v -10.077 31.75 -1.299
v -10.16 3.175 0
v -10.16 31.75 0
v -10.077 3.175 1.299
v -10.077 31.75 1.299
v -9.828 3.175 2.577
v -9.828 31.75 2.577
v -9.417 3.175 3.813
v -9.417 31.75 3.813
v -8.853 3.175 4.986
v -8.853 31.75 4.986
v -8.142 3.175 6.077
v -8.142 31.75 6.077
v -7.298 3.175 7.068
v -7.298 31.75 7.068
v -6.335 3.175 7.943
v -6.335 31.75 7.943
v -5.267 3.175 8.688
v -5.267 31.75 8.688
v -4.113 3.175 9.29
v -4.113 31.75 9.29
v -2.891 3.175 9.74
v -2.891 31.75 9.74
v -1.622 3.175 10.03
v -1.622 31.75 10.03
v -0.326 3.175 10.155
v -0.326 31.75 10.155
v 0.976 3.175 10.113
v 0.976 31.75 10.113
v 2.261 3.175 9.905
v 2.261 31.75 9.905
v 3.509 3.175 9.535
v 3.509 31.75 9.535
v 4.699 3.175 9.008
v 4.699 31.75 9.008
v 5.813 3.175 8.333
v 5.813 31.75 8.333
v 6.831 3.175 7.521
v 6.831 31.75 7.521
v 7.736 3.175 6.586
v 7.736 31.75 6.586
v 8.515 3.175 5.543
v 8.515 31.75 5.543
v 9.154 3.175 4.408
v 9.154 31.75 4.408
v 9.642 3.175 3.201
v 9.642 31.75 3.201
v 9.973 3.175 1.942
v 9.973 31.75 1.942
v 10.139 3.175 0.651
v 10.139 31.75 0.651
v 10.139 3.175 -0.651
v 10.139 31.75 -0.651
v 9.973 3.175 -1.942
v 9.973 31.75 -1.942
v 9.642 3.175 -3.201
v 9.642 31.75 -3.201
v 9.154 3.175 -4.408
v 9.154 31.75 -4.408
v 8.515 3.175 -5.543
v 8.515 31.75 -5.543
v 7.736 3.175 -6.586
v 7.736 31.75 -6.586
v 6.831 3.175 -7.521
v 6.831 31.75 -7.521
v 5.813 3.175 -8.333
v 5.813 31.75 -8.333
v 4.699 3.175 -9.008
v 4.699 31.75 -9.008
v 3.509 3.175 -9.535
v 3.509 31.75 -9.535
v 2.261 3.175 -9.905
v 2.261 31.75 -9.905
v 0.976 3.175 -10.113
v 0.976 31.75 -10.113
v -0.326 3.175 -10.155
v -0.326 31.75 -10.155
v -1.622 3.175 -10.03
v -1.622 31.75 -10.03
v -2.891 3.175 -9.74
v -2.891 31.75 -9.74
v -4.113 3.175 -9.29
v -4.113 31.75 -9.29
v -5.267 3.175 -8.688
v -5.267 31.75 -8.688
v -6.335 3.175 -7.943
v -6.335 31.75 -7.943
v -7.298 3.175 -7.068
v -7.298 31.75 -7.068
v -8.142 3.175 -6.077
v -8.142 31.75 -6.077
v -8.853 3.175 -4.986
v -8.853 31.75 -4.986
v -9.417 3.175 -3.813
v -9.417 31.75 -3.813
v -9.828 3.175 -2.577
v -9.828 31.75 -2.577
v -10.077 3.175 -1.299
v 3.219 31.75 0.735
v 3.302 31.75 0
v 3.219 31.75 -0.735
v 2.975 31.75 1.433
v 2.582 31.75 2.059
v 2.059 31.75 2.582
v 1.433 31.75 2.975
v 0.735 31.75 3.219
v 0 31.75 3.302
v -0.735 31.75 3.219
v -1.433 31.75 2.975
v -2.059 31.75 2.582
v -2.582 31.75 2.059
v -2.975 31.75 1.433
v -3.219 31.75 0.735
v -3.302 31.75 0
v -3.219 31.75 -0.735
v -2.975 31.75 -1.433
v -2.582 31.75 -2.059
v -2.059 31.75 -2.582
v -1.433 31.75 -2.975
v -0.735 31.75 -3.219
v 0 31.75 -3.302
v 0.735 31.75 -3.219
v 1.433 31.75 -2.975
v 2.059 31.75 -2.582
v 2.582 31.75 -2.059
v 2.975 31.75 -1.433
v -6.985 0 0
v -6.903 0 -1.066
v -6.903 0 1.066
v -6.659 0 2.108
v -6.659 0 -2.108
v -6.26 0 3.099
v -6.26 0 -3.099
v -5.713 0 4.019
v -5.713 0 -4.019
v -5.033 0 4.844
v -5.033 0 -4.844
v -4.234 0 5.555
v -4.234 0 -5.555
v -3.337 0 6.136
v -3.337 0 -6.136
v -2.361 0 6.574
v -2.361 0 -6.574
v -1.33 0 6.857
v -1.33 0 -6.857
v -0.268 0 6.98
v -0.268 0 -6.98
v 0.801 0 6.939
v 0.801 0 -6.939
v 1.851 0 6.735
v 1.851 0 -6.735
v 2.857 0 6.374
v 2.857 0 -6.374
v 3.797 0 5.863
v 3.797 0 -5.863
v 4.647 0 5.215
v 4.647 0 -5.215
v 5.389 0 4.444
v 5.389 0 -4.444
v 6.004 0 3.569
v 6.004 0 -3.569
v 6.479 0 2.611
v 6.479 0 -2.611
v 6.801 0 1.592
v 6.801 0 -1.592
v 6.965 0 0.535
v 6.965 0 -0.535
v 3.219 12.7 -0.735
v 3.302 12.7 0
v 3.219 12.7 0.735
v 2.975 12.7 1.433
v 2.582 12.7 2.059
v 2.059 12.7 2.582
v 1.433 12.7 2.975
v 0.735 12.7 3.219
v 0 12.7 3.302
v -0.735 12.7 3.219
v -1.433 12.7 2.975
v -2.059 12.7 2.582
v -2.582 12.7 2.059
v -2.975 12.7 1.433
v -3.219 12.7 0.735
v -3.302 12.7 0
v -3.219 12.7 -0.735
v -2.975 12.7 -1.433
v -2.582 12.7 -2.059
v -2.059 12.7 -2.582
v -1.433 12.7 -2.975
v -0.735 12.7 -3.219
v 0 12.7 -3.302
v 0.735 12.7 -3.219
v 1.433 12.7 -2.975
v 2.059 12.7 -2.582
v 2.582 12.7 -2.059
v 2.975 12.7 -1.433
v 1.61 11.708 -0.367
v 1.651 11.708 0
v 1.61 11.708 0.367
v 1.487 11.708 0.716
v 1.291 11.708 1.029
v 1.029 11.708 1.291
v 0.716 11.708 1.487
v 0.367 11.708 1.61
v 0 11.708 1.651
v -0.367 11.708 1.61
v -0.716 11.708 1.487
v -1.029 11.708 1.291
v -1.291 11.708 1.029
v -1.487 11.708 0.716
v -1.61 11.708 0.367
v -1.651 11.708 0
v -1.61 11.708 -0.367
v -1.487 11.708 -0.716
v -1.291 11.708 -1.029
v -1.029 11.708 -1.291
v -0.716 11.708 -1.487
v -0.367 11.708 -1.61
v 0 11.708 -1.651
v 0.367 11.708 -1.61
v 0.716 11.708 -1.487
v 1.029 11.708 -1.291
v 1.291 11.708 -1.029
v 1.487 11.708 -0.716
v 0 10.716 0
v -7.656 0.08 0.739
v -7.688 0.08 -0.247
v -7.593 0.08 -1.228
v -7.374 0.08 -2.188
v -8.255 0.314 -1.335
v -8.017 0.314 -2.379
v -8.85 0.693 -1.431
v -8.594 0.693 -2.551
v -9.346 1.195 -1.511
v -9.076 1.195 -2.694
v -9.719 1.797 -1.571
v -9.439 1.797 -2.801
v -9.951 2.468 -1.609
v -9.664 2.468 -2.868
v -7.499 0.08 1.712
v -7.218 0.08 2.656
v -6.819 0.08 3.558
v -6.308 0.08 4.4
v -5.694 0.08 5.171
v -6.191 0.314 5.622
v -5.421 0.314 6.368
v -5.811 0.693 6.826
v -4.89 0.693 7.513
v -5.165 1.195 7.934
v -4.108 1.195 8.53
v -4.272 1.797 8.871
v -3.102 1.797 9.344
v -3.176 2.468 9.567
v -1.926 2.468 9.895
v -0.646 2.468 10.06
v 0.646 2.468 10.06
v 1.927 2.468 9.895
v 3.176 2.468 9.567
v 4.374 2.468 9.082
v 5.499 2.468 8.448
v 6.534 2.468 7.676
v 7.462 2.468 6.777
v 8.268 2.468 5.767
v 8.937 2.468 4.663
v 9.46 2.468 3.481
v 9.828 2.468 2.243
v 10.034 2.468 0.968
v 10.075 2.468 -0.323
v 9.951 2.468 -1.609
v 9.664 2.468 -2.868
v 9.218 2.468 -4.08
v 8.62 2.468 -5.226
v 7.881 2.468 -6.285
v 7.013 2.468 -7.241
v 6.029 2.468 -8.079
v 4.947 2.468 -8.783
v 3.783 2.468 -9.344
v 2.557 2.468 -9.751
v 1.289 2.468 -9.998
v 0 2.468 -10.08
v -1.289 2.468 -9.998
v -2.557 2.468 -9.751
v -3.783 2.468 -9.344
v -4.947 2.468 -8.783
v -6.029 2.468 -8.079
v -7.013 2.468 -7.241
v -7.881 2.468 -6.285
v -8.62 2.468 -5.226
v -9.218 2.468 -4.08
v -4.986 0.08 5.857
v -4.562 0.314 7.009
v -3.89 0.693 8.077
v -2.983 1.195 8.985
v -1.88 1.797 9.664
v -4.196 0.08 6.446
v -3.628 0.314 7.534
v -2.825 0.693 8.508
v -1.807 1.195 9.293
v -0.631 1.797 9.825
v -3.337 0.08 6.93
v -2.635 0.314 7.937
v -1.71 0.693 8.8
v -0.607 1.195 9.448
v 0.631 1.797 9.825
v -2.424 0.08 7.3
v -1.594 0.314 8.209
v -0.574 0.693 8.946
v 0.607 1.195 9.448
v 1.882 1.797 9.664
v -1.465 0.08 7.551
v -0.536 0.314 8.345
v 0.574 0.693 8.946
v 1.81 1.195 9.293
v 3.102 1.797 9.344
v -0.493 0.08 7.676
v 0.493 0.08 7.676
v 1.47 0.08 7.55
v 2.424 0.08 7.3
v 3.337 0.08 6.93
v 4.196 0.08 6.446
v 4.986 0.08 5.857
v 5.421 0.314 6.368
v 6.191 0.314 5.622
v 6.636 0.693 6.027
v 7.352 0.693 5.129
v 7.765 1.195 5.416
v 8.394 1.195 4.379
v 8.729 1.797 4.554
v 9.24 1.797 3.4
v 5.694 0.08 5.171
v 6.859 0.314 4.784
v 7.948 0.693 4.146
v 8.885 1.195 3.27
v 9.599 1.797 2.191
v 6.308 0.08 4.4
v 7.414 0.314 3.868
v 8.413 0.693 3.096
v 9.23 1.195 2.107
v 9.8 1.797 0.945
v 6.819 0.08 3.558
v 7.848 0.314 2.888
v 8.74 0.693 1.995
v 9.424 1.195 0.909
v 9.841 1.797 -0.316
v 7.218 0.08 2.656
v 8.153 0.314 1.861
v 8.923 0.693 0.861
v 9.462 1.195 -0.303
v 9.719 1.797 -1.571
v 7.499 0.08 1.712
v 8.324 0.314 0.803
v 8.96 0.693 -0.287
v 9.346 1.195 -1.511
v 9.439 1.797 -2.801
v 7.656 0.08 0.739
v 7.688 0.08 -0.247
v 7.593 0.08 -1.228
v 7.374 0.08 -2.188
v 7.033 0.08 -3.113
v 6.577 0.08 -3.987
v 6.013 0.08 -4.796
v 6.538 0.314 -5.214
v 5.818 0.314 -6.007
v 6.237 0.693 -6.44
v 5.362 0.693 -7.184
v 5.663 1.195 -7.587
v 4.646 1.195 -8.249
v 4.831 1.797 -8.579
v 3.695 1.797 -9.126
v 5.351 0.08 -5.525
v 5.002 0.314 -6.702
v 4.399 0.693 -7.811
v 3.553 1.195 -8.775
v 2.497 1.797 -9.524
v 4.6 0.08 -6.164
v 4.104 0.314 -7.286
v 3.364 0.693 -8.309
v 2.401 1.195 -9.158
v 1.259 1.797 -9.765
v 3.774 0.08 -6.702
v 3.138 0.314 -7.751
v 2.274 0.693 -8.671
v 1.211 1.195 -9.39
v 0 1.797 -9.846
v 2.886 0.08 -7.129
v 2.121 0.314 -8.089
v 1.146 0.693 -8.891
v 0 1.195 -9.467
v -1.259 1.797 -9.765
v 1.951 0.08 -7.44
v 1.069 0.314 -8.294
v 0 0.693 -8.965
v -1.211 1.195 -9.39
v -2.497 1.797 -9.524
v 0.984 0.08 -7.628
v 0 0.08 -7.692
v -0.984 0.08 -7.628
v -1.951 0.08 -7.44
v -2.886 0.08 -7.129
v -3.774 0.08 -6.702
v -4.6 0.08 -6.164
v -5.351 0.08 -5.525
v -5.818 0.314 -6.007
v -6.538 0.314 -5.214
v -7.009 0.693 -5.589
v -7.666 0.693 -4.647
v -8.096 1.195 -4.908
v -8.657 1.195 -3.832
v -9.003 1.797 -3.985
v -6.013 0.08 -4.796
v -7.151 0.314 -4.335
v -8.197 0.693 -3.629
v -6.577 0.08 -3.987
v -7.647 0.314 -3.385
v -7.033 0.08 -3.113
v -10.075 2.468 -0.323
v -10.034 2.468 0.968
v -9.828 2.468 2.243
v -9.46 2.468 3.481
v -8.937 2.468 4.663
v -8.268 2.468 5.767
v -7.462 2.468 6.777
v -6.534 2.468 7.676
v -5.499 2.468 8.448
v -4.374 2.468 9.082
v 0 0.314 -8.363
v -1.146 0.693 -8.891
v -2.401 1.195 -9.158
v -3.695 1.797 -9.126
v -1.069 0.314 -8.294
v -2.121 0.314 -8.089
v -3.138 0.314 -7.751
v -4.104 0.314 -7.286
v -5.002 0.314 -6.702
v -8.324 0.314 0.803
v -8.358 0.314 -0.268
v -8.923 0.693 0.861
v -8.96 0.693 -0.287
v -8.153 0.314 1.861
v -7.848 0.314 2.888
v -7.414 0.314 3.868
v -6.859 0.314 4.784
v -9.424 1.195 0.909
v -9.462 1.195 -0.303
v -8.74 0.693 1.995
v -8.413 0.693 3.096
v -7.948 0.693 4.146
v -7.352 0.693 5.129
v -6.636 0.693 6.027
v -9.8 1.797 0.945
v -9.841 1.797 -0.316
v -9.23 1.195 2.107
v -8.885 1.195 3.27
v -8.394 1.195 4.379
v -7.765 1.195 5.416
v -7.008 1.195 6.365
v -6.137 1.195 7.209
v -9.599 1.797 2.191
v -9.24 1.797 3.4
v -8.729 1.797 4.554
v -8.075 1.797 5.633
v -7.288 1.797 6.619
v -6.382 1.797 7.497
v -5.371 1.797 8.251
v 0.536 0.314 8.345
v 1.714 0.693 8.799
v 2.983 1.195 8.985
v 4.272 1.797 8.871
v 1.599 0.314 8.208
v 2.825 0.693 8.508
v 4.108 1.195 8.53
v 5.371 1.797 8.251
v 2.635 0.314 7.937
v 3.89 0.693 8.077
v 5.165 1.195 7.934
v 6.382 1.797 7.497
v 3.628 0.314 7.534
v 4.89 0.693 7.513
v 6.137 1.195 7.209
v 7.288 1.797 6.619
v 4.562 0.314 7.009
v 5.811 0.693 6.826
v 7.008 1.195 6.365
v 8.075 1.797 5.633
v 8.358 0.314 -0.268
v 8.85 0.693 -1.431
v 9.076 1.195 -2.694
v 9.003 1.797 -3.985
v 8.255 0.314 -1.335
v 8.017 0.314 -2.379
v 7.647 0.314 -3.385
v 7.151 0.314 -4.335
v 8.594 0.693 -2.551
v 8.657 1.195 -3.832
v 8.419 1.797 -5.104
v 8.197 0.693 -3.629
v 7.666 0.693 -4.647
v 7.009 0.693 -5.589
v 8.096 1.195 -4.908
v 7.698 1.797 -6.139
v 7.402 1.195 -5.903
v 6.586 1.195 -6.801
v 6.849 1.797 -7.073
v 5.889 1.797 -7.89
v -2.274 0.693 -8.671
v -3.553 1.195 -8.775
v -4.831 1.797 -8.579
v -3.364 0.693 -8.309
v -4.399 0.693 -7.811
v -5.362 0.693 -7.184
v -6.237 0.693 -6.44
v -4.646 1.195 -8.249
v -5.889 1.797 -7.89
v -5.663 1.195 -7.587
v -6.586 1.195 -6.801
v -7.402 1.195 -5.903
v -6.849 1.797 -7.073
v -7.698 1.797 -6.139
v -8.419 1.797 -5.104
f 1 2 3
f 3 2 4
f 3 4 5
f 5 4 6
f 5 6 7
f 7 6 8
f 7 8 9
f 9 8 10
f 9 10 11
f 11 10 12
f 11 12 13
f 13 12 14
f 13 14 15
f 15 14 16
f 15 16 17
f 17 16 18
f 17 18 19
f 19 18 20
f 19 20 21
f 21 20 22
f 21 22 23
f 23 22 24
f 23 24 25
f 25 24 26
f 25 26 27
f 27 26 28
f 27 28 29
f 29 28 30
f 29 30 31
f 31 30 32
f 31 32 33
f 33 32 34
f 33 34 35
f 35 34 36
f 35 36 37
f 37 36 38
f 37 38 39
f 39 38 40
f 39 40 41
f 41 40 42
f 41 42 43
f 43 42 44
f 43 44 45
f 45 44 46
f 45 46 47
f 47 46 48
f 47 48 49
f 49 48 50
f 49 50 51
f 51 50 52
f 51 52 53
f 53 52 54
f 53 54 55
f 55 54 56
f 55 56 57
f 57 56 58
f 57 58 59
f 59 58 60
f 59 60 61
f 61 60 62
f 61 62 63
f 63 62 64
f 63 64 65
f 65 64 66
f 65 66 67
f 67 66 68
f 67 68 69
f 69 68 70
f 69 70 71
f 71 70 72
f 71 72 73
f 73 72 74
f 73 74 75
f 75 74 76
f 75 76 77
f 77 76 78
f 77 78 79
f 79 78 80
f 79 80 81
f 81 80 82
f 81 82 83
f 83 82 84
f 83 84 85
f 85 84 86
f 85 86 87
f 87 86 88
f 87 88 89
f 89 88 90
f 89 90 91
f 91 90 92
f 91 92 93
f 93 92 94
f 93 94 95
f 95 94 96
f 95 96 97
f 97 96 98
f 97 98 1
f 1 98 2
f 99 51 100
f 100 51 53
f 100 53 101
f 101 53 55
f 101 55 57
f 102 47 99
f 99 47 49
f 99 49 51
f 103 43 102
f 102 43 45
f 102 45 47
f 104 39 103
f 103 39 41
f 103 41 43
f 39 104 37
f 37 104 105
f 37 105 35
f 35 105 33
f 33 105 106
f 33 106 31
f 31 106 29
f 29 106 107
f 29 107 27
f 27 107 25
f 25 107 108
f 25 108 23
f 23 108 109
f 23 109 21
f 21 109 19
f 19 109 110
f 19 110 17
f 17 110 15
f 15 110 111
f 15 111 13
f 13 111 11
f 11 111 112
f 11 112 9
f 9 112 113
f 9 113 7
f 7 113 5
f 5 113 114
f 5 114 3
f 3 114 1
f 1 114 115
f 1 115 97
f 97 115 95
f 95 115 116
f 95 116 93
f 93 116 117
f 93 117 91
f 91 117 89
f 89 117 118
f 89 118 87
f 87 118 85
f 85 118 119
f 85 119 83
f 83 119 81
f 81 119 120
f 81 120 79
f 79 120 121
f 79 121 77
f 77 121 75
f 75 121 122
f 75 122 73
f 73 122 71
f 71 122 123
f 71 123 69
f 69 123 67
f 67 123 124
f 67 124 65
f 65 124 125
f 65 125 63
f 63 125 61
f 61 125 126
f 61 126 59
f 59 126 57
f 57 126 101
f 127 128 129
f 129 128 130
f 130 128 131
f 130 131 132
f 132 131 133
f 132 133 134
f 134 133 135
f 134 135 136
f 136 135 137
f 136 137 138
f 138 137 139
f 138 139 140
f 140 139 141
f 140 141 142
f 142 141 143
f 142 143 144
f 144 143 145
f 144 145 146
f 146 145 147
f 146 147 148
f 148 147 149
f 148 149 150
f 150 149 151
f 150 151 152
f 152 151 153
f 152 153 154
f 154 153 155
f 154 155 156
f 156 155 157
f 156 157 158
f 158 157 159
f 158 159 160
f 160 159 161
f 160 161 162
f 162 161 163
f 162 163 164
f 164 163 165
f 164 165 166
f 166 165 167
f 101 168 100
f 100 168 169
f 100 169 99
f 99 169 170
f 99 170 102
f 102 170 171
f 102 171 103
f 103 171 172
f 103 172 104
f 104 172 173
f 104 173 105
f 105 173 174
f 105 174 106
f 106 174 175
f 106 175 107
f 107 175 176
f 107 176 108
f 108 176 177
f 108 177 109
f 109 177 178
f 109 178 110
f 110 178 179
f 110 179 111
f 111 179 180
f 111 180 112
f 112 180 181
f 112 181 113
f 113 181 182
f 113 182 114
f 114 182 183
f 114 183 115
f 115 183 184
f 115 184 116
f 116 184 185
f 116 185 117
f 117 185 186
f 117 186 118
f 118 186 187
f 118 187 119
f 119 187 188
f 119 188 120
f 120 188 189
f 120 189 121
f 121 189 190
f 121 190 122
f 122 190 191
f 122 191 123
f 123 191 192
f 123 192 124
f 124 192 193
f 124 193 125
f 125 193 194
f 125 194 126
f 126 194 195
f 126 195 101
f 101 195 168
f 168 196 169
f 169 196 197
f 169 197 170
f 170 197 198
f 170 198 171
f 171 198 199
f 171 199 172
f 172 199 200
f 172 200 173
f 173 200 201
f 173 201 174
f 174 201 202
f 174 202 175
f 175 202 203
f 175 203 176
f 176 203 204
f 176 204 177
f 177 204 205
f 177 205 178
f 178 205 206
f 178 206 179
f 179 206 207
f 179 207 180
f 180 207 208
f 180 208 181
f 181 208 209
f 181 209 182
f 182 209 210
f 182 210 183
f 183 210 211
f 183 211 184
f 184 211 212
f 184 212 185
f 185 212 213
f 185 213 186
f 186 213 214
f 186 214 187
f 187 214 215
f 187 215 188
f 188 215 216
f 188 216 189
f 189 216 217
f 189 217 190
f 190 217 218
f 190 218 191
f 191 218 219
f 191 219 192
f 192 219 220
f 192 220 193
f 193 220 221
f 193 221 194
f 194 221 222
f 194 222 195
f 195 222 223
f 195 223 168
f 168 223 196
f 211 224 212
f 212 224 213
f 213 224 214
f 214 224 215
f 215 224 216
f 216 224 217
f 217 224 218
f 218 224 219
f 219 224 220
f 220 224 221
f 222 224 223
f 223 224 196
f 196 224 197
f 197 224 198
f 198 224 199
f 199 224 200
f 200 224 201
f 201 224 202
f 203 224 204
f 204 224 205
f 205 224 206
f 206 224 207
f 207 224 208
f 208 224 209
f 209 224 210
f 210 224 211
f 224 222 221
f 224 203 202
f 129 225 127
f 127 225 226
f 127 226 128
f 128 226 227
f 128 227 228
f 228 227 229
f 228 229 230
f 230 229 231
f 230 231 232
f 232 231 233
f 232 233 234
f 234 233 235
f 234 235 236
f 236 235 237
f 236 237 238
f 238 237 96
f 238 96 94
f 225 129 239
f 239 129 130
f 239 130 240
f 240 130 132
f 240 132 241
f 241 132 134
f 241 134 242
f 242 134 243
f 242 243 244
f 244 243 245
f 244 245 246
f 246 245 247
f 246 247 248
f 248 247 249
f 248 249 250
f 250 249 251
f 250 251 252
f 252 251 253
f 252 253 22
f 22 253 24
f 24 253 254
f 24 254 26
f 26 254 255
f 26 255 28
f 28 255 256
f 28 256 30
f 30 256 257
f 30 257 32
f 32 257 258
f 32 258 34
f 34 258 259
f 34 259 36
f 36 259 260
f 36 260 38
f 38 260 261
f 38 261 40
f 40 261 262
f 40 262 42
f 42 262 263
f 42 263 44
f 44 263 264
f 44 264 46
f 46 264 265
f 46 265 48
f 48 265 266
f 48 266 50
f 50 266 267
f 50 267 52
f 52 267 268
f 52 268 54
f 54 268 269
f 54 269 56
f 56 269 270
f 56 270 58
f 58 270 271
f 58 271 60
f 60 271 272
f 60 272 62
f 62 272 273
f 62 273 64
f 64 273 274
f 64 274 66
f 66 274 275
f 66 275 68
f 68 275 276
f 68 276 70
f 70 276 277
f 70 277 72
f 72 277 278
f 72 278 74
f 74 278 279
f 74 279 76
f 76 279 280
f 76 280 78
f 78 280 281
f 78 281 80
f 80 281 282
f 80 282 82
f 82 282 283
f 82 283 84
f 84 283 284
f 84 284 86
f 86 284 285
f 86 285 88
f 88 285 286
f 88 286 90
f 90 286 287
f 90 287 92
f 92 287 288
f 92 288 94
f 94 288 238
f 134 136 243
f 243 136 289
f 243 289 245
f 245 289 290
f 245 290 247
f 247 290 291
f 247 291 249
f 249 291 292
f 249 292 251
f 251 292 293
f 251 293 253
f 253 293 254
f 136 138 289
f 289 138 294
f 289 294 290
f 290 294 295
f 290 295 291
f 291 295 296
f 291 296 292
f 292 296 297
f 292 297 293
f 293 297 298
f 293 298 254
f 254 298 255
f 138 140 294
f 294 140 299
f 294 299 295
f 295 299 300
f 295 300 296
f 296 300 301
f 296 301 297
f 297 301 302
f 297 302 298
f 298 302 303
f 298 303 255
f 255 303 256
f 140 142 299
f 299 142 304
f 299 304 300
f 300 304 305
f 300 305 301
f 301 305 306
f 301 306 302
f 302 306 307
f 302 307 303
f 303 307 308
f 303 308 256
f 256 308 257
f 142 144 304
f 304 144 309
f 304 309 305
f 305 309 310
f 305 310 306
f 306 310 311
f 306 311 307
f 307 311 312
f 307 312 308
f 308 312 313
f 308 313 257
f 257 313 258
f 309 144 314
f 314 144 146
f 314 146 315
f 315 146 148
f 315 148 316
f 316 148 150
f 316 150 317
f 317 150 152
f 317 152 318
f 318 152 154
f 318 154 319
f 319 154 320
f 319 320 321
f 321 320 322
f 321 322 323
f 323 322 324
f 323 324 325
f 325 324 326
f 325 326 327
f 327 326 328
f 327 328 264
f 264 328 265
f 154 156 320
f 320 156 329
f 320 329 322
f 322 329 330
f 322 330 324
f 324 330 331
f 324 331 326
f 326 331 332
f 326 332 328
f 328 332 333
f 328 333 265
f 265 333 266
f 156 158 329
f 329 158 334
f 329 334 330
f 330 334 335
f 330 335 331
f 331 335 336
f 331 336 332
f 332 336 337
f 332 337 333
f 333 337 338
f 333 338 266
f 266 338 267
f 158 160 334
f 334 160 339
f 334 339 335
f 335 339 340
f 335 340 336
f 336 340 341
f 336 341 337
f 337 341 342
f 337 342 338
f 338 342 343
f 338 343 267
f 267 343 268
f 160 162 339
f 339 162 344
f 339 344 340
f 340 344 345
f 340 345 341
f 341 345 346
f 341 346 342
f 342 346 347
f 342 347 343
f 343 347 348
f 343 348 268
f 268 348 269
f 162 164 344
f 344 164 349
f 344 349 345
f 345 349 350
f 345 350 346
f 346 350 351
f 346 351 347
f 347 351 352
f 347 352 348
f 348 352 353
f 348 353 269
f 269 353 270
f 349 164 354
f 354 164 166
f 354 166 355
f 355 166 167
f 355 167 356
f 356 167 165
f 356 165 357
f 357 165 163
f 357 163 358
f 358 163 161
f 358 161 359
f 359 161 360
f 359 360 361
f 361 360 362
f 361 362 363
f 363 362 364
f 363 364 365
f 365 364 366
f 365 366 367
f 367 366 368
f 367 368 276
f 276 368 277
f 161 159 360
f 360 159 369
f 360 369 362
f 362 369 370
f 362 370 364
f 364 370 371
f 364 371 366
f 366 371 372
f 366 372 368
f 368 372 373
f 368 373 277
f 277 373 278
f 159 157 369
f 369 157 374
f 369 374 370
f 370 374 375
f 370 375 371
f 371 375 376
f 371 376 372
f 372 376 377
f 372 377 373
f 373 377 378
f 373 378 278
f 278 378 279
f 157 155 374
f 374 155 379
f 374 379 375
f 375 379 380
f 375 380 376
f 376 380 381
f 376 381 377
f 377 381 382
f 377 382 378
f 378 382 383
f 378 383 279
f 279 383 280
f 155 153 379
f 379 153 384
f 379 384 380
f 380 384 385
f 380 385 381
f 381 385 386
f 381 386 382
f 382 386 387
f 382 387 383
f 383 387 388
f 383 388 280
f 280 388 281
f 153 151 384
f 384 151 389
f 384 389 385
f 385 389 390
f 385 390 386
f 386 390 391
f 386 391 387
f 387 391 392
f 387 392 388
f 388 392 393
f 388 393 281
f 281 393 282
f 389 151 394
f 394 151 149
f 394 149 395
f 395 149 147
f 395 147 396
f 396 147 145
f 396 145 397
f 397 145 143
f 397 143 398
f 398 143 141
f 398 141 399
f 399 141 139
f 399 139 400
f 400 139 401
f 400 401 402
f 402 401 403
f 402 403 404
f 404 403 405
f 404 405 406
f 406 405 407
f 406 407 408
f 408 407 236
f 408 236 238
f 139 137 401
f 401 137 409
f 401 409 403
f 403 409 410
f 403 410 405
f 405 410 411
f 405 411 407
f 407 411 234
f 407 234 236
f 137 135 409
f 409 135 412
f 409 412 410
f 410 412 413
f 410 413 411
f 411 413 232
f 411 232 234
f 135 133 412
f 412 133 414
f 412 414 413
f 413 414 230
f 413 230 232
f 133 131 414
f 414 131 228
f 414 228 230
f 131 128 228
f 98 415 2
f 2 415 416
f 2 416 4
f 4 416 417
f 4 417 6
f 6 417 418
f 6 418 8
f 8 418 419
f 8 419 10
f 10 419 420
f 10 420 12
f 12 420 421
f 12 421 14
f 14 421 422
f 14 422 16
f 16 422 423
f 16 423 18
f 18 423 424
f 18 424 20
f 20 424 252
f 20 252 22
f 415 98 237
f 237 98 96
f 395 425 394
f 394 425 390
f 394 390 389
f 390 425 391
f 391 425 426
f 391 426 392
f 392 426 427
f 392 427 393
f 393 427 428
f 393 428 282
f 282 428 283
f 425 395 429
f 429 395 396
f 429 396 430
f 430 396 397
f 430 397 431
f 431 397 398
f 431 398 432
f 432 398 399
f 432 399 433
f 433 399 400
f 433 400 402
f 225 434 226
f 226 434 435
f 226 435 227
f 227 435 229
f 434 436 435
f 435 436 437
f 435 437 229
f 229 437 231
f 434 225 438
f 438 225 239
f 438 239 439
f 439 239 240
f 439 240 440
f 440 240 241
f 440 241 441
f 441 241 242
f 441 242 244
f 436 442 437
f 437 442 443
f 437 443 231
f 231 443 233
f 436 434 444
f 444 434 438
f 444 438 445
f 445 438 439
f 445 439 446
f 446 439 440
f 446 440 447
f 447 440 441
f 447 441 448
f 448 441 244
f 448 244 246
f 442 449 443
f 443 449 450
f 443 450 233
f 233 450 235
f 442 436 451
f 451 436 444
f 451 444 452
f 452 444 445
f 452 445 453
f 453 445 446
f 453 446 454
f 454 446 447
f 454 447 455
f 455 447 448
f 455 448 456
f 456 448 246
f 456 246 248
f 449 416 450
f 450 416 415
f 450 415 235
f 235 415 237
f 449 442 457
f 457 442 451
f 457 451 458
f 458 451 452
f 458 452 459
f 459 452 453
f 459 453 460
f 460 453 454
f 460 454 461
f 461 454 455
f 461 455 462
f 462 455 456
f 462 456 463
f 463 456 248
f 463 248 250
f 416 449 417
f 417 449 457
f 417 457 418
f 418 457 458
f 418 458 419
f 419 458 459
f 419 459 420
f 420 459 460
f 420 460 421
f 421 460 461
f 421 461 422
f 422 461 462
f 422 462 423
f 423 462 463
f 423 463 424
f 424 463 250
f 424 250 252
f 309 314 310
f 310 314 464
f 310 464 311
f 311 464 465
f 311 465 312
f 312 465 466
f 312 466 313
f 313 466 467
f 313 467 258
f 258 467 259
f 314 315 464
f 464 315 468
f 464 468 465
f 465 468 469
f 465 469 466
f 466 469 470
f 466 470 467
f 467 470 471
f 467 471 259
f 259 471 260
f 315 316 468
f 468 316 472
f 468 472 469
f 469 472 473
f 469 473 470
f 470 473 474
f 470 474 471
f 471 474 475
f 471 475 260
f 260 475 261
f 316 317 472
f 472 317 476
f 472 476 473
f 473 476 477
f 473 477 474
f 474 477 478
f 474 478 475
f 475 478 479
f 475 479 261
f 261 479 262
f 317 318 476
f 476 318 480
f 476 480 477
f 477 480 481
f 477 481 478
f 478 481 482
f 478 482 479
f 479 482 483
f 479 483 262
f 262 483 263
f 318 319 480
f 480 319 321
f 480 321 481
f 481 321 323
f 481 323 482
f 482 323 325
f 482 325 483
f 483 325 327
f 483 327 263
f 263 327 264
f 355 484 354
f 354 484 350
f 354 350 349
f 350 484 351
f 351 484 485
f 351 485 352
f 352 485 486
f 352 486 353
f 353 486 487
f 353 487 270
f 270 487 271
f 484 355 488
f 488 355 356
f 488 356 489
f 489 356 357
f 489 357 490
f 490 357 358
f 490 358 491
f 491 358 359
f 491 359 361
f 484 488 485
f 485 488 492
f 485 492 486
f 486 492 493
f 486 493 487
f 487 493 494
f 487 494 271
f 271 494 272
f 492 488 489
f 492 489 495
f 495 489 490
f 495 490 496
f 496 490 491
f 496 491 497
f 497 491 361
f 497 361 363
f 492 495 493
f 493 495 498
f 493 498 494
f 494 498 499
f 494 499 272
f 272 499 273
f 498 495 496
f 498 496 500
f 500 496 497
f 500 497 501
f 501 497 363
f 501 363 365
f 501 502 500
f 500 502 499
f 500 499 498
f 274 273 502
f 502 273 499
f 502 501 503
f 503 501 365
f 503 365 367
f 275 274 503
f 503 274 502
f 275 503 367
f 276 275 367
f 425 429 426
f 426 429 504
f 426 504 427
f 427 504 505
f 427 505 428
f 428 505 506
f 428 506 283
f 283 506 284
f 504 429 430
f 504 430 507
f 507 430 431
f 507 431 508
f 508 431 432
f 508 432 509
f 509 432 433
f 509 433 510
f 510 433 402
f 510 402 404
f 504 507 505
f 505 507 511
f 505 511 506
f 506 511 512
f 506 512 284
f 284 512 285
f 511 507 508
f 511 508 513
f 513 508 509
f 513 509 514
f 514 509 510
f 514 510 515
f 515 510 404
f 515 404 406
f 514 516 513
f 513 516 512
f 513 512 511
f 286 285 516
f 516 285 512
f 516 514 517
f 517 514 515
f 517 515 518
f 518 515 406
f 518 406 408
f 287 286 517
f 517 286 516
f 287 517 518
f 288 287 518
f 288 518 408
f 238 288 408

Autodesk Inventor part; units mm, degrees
ref_plane "YZ Plane" through (0, 0, 0) normal (1, 0, 0) x (0, 1, 0)
ref_plane "XZ Plane" through (0, 0, 0) normal (0, 1, 0) x (-1, 0, 0)
ref_plane "XY Plane" through (0, 0, 0) normal (0, 0, 1) x (1, 0, 0)
sketch "Sketch1" plane through (0, 0, 0) normal (0, 1, 0) x (-1, 0, 0)
  circle A0 centre (0, 0) radius 10.16
  dimension "d0" = 20.32
extrude "Extrusion1" add sketch "Sketch1" along normal blind 31.75
sketch "Sketch2" plane through (0, 31.75, 0) normal (0, 1, 0) x (1, 0, 0)
  point P0 (0, 0)
  point P1 (0, 0)
hole "Hole1" at (0, 31.75, 0) direction (0, -1, 0) diameter 6.604 depth 19.05 tip angle 118 clearance for "Flat Head Machine Screw" size "M6" standard "Ansi Metric M Profile"
fillet "Fillet1" radius 3.175 1 edges at (10.16, 0, 0)
properties part number "legs"
